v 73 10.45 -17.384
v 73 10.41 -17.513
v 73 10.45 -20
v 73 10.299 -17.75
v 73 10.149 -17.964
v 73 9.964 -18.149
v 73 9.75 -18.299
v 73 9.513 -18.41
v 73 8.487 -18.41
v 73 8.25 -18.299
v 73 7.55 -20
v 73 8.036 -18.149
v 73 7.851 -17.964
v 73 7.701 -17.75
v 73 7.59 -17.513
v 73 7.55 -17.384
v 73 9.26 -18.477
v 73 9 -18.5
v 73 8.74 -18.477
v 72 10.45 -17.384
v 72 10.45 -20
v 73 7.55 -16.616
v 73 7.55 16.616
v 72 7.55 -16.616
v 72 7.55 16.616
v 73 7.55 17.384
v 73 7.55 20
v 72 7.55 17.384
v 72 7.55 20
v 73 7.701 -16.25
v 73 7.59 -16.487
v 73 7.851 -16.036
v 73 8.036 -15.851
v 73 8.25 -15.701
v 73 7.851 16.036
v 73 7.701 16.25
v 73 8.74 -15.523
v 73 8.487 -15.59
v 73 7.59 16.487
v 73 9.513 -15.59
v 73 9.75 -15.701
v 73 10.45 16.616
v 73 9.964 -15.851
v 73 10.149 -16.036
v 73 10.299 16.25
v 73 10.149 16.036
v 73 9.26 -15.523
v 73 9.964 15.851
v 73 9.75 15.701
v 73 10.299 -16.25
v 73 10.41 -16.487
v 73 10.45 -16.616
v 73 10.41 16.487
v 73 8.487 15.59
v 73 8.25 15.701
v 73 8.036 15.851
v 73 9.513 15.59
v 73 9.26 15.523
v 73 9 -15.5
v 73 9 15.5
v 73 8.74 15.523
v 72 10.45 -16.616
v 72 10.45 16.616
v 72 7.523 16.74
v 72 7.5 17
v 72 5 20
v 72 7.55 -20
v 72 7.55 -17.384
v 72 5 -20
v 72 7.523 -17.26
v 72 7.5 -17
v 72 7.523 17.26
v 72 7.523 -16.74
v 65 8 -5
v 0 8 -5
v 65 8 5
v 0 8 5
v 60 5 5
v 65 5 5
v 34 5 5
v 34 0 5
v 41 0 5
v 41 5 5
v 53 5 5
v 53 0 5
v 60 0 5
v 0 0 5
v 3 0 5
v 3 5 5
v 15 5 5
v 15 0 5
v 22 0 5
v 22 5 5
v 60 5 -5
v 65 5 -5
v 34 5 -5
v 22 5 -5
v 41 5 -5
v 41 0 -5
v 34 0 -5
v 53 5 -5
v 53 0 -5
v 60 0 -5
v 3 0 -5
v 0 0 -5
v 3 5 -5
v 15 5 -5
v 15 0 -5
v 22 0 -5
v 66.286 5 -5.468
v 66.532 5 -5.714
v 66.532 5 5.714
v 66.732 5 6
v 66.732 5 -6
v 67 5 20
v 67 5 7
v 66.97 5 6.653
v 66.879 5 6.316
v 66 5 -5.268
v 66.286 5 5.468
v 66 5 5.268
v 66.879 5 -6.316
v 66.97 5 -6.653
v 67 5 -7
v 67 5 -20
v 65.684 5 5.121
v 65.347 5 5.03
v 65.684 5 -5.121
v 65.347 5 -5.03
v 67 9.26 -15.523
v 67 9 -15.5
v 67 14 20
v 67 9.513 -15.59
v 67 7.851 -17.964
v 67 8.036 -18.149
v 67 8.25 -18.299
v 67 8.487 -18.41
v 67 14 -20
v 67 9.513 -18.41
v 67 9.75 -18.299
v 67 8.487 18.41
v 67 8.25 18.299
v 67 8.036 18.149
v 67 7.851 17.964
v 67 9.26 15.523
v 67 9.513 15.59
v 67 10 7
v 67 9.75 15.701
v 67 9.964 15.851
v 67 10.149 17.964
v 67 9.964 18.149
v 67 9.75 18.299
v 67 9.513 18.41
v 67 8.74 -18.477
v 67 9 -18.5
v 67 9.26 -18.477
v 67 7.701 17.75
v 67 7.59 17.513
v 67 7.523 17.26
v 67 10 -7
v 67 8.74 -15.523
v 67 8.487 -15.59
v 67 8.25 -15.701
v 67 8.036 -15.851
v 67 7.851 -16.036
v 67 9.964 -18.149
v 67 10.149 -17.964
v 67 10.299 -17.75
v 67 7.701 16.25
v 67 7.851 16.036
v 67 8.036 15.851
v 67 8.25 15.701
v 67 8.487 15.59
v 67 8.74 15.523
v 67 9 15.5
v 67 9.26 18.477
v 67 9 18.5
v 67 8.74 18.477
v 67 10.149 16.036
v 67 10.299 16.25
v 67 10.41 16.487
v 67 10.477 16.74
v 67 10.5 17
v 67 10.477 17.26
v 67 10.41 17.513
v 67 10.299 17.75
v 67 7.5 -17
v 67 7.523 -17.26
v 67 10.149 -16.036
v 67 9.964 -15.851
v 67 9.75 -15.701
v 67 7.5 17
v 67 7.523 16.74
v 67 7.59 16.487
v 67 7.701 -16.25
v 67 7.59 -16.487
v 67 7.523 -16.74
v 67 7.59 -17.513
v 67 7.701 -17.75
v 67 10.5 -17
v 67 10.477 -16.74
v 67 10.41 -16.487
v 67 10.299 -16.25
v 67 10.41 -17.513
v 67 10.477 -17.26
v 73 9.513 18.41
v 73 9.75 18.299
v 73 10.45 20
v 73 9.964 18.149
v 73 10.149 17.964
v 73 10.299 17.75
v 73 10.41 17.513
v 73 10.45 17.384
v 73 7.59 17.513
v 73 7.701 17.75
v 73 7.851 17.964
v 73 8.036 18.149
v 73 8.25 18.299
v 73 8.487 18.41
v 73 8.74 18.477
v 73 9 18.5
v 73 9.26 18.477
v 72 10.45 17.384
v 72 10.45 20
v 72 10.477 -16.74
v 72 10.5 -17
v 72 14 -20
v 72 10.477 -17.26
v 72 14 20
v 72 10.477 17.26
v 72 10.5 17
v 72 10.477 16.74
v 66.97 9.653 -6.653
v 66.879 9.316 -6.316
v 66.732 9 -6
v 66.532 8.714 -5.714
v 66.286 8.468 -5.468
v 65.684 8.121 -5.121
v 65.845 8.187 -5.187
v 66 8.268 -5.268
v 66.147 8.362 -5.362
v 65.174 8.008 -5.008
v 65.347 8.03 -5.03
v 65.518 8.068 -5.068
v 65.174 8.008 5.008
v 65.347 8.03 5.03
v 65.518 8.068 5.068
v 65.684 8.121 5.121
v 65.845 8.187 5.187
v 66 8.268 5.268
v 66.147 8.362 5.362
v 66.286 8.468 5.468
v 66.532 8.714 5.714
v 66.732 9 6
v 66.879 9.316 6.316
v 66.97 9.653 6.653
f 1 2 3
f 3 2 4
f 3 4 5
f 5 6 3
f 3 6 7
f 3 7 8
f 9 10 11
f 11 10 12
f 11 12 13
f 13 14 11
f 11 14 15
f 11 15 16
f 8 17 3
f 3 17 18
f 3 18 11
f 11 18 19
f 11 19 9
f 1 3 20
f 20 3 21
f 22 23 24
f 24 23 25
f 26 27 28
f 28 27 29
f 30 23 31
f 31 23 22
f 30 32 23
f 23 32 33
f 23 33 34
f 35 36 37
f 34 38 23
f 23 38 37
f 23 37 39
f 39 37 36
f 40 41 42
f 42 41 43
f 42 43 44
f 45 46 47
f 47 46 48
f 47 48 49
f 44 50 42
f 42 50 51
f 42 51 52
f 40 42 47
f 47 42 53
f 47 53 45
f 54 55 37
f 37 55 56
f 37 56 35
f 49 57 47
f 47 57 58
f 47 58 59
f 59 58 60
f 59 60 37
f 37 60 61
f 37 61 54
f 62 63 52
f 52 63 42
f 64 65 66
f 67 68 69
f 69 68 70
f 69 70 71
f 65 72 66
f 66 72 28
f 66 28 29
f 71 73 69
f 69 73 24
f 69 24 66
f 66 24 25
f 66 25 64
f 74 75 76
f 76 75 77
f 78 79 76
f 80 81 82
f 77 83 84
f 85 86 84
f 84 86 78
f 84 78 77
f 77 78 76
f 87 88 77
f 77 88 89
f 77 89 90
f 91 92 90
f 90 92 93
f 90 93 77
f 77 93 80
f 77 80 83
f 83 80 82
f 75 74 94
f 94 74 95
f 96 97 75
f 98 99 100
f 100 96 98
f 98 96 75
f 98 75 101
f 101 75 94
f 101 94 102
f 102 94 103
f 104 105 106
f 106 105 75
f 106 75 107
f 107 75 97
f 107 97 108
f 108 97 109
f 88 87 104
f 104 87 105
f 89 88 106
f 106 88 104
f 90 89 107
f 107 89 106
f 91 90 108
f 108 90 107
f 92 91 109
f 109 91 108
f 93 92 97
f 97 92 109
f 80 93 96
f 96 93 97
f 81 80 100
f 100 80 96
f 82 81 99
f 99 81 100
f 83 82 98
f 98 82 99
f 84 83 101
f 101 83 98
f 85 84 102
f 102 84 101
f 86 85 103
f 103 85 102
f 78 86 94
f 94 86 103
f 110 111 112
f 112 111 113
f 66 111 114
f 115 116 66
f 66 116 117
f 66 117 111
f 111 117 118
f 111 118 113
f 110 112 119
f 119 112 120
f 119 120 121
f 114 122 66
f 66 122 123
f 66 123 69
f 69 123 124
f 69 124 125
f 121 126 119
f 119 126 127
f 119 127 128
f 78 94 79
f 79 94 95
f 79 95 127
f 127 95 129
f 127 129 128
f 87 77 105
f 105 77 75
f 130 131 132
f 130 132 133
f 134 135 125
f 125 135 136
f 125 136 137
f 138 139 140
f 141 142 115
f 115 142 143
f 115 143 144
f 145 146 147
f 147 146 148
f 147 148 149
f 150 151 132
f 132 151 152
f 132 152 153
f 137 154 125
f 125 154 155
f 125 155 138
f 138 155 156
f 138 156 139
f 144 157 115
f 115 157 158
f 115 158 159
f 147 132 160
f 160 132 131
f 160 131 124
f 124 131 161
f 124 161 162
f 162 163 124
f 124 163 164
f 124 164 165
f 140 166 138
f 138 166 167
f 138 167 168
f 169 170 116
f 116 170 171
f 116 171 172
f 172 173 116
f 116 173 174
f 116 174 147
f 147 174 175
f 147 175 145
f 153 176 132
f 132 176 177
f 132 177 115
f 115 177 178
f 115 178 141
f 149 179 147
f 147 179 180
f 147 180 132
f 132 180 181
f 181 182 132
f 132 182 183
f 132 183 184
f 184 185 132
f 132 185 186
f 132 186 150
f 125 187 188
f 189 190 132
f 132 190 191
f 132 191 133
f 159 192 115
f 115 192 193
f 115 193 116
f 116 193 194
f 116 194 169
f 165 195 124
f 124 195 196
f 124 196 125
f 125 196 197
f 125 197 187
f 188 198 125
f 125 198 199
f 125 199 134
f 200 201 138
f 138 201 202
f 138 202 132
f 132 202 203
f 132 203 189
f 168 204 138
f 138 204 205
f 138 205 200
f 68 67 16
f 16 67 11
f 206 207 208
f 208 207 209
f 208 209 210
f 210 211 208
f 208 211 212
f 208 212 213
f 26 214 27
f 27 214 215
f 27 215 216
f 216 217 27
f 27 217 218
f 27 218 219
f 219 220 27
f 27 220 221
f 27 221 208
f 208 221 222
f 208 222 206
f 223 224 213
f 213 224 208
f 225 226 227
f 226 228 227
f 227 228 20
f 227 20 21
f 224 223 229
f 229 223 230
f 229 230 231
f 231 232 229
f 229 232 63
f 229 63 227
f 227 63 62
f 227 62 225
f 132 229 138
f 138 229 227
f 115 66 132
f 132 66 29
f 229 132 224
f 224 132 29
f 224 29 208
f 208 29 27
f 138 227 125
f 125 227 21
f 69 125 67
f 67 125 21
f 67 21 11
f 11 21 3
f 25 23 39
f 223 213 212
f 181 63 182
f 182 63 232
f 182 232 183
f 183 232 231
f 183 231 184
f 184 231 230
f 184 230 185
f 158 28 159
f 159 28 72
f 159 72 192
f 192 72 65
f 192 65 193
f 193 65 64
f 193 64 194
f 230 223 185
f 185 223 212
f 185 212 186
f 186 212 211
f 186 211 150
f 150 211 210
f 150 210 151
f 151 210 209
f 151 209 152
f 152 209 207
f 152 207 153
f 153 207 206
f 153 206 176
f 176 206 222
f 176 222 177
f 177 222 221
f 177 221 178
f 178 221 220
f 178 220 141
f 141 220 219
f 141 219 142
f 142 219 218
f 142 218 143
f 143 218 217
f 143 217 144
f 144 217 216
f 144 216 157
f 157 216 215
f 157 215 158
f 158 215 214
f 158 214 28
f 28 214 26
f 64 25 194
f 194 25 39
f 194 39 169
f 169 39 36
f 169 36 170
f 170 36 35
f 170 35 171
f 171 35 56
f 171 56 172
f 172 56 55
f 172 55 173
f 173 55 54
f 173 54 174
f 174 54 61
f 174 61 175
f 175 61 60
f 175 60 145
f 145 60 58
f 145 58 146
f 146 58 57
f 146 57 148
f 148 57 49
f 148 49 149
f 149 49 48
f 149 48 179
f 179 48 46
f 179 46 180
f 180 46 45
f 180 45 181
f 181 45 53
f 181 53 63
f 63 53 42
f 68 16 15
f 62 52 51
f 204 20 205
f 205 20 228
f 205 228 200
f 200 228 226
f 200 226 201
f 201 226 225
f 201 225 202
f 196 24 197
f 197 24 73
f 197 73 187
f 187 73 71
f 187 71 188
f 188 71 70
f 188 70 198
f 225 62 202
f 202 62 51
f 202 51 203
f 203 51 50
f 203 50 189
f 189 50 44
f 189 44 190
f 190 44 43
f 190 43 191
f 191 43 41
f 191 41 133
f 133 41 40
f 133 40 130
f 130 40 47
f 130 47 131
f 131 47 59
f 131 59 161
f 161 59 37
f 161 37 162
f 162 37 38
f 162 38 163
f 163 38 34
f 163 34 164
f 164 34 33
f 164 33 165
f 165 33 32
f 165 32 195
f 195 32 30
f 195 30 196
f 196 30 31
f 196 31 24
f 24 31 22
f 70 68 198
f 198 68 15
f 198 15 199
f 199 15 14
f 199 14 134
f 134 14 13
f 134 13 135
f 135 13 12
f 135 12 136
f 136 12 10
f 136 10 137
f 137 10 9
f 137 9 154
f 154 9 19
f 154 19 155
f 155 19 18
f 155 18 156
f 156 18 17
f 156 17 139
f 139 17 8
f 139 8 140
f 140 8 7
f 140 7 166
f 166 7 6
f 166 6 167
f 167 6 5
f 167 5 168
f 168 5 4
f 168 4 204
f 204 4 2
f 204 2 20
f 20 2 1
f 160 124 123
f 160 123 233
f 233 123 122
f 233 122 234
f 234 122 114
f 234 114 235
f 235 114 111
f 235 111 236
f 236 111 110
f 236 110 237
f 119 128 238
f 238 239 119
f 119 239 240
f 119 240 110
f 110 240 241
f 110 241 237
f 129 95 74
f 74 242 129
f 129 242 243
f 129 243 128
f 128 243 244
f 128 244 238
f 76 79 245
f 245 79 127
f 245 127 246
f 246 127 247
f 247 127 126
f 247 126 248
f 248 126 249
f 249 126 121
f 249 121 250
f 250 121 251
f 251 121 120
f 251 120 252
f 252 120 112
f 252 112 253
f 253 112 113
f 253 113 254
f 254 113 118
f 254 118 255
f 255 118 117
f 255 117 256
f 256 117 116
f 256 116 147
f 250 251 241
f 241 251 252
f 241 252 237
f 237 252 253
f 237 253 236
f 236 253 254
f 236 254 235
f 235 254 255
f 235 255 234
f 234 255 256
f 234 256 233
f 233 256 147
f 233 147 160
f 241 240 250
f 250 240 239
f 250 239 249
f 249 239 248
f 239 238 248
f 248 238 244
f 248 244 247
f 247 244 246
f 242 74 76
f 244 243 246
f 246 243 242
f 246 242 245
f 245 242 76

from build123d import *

# Parameters (mm, degrees)
MAIN_DEPTH             = 5
MAKERBEAMFIX_DEPTH     = 20
SKETCH2_R              = 1.5
MAKERBEAMFIXHOLE_DEPTH = 30
FILLET1_R              = 2


with BuildPart() as part:
    # Esquisse1 → Main (new body, symmetric)
    with BuildSketch(Plane.XY):
        Polygon((3, 0), (3, 5), (15, 5), (15, 0), (22, 0), (22, 5), (34, 5), (34, 0), (41, 0), (41, 5), (53, 5), (53, 0), (60, 0), (60, 5), (72, 5), (72, 8), (0, 8), (0, 0), align=None)
    extrude(amount=MAIN_DEPTH, both=True)

    # Sketch1 → MakerBeamFix (add, symmetric)
    with BuildSketch(Plane.XY):
        Polygon((67, 14), (72, 14), (72, 10.45), (73, 10.45), (73, 7.55), (72, 7.55), (72, 5), (67, 5), align=None)
    extrude(amount=MAKERBEAMFIX_DEPTH, both=True)

    # Sketch2 → MakerBeamFixHole (cut)
    with BuildSketch(Plane(origin=(73, 0, 0), x_dir=(0, 0, -1), z_dir=(1, 0, 0))):
        with Locations((-17, 9)):
            Circle(SKETCH2_R)
        with Locations((17, 9)):
            Circle(SKETCH2_R)
    extrude(amount=-MAKERBEAMFIXHOLE_DEPTH, mode=Mode.SUBTRACT)

    # Fillet1
    fillet1_edges = [part.edges().sort_by_distance(p)[0] for p in [
        (67, 6.5, -5),
        (67, 6.5, 5),
        (67, 8, 0),
    ]]
    fillet(fillet1_edges, radius=FILLET1_R)


solid = part.part
